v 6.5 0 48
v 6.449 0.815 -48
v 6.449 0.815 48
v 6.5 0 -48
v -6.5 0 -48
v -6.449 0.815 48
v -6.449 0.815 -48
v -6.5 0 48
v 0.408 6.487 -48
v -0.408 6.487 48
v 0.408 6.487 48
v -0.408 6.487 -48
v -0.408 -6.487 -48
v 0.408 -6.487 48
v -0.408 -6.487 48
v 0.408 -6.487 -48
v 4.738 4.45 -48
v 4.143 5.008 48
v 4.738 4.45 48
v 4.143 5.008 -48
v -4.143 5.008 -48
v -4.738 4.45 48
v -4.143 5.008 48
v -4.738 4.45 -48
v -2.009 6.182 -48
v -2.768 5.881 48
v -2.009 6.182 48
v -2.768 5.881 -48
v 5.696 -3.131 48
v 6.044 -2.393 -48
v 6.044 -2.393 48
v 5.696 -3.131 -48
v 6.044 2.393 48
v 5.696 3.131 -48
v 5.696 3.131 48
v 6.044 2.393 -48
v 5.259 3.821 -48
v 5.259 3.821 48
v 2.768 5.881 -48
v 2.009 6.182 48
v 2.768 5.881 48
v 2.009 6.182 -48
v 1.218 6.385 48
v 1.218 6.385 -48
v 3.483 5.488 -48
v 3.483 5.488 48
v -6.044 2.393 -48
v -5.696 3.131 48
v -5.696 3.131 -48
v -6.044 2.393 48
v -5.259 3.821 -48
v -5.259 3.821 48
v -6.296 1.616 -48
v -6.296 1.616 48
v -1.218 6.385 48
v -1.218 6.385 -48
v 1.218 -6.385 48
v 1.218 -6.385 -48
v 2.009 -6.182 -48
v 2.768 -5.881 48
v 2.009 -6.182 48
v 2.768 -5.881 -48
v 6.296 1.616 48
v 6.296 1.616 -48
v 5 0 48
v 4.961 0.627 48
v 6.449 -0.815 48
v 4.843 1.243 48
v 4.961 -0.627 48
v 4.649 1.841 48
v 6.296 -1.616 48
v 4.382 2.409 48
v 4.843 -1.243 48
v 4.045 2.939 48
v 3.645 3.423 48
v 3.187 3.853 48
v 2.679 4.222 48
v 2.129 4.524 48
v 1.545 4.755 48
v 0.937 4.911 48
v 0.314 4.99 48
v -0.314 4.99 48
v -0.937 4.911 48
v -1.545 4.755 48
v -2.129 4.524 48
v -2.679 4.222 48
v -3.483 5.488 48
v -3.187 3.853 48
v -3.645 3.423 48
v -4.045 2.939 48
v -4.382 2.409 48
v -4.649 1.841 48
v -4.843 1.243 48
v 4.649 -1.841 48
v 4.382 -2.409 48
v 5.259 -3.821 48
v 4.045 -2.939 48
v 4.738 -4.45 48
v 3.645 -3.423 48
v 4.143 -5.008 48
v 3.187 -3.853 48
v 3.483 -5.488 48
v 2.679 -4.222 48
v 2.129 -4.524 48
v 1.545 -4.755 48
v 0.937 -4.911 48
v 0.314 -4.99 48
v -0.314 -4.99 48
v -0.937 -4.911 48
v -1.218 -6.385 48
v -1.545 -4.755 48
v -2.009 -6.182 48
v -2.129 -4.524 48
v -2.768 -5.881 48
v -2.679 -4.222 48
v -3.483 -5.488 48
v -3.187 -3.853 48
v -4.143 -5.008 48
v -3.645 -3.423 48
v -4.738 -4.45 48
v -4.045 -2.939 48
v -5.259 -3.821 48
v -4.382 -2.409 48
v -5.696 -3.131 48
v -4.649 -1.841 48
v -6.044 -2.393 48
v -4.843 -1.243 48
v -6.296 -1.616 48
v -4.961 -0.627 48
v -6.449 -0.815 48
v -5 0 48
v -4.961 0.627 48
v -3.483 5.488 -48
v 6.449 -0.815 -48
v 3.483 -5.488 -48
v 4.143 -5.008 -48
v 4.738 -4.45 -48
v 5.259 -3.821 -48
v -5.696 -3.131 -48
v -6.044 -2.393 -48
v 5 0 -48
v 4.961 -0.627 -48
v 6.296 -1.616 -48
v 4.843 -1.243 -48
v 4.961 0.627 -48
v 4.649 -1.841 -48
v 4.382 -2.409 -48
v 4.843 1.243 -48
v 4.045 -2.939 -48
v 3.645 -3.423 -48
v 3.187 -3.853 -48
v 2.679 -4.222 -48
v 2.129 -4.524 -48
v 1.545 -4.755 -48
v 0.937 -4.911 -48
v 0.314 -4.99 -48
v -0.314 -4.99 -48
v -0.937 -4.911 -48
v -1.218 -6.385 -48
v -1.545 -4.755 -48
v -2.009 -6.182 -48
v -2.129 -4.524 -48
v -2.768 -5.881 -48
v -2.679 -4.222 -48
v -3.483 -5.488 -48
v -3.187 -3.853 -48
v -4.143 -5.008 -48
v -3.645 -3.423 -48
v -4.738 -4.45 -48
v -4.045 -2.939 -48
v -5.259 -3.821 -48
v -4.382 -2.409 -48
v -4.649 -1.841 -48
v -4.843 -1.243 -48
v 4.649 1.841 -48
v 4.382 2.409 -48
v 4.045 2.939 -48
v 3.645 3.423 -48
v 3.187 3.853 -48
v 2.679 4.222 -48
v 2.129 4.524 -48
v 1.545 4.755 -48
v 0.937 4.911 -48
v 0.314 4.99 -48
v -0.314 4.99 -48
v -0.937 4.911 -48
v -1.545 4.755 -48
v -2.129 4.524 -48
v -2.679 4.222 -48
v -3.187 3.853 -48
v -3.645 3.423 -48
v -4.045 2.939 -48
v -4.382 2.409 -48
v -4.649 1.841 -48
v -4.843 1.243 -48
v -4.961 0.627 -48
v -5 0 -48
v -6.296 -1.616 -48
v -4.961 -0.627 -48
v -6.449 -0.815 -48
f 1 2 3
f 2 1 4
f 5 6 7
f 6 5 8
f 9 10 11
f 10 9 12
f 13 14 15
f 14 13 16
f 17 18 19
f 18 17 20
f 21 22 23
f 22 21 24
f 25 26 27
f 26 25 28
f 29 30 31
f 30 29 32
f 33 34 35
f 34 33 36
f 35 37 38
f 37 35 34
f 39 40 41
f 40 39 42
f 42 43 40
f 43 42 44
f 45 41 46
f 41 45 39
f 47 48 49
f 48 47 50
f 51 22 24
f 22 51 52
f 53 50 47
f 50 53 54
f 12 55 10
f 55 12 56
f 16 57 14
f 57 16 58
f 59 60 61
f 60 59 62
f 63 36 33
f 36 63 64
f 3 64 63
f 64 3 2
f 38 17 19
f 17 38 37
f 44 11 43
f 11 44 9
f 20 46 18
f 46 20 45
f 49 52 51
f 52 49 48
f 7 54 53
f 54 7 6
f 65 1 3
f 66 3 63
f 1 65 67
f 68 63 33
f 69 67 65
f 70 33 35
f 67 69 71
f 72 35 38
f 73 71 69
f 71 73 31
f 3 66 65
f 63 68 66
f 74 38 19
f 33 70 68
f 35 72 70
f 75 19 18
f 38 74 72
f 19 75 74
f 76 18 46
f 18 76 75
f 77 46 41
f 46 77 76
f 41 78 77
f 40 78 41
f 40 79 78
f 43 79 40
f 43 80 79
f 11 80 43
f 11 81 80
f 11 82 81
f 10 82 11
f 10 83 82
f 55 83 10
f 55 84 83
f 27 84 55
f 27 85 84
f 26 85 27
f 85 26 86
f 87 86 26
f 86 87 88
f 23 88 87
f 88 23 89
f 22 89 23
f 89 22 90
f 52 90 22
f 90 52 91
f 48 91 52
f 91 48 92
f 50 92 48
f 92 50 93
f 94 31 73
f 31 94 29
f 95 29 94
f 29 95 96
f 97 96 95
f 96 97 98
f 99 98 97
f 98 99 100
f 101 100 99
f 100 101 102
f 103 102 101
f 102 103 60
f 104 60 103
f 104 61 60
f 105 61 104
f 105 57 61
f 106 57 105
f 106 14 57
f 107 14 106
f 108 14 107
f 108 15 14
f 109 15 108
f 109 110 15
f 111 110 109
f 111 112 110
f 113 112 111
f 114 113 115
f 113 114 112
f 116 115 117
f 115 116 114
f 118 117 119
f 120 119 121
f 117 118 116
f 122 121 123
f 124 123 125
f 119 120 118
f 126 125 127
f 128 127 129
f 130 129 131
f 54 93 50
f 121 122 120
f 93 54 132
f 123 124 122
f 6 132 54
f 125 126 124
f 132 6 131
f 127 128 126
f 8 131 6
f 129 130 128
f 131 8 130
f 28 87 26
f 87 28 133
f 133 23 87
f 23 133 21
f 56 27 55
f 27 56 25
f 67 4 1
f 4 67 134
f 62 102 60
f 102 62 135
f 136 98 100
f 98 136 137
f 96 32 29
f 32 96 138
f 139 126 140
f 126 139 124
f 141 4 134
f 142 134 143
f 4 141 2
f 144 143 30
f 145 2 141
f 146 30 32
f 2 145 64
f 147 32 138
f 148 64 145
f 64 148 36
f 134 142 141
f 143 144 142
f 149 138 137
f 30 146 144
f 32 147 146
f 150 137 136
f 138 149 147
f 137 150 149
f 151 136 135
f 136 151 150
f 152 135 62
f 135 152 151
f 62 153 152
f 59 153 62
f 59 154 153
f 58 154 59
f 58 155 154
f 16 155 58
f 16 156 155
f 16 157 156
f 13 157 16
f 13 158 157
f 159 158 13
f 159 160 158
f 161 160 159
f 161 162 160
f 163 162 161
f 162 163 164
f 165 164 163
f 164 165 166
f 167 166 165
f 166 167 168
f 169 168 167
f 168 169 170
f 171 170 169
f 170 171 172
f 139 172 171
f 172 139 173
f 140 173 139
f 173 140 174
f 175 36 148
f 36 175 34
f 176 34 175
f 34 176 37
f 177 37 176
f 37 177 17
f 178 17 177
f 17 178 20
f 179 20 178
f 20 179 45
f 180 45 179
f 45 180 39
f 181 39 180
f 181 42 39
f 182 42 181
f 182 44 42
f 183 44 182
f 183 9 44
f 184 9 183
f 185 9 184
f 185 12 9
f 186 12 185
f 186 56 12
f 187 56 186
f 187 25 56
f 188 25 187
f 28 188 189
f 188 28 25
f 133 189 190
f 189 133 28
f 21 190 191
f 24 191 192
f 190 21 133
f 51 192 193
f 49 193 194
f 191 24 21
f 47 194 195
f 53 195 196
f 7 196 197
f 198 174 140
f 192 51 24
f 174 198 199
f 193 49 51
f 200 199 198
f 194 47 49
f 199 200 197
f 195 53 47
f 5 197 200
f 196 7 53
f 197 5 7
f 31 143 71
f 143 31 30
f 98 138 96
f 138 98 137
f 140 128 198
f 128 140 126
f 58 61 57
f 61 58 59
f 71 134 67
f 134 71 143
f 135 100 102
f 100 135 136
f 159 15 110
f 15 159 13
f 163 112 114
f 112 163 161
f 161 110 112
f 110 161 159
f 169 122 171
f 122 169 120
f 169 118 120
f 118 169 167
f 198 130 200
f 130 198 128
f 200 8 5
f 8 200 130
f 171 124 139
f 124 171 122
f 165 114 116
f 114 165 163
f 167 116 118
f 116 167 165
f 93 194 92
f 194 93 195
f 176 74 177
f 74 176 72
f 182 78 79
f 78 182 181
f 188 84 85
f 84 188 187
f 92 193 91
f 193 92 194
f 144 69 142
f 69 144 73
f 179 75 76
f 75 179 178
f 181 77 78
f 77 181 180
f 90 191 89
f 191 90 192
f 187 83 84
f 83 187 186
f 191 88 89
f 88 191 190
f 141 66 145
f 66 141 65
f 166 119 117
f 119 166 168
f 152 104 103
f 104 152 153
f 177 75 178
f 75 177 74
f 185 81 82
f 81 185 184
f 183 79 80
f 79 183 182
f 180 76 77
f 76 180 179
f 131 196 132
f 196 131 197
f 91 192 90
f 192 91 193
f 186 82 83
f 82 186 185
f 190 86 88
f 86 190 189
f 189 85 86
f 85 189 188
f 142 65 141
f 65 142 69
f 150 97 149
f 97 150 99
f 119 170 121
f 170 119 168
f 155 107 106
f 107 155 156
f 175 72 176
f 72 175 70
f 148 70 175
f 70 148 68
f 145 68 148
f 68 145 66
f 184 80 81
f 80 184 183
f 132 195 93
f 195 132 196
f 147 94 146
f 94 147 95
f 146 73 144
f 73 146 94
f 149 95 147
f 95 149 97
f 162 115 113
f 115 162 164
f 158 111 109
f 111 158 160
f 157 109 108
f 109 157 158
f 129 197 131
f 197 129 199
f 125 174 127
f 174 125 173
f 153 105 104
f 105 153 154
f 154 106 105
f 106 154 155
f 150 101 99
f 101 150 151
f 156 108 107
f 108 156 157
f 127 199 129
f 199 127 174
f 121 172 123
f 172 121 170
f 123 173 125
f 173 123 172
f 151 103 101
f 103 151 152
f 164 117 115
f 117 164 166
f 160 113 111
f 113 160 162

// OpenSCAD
$fn = 50;


difference() {
	union() {
		translate(v = [0, 0, -48.0000000000]) {
			cylinder(h = 96, r = 6.5000000000);
		}
	}
	union() {
		translate(v = [0, 0, -100.0000000000]) {
			cylinder(h = 200, r = 5.0000000000);
		}
	}
}
